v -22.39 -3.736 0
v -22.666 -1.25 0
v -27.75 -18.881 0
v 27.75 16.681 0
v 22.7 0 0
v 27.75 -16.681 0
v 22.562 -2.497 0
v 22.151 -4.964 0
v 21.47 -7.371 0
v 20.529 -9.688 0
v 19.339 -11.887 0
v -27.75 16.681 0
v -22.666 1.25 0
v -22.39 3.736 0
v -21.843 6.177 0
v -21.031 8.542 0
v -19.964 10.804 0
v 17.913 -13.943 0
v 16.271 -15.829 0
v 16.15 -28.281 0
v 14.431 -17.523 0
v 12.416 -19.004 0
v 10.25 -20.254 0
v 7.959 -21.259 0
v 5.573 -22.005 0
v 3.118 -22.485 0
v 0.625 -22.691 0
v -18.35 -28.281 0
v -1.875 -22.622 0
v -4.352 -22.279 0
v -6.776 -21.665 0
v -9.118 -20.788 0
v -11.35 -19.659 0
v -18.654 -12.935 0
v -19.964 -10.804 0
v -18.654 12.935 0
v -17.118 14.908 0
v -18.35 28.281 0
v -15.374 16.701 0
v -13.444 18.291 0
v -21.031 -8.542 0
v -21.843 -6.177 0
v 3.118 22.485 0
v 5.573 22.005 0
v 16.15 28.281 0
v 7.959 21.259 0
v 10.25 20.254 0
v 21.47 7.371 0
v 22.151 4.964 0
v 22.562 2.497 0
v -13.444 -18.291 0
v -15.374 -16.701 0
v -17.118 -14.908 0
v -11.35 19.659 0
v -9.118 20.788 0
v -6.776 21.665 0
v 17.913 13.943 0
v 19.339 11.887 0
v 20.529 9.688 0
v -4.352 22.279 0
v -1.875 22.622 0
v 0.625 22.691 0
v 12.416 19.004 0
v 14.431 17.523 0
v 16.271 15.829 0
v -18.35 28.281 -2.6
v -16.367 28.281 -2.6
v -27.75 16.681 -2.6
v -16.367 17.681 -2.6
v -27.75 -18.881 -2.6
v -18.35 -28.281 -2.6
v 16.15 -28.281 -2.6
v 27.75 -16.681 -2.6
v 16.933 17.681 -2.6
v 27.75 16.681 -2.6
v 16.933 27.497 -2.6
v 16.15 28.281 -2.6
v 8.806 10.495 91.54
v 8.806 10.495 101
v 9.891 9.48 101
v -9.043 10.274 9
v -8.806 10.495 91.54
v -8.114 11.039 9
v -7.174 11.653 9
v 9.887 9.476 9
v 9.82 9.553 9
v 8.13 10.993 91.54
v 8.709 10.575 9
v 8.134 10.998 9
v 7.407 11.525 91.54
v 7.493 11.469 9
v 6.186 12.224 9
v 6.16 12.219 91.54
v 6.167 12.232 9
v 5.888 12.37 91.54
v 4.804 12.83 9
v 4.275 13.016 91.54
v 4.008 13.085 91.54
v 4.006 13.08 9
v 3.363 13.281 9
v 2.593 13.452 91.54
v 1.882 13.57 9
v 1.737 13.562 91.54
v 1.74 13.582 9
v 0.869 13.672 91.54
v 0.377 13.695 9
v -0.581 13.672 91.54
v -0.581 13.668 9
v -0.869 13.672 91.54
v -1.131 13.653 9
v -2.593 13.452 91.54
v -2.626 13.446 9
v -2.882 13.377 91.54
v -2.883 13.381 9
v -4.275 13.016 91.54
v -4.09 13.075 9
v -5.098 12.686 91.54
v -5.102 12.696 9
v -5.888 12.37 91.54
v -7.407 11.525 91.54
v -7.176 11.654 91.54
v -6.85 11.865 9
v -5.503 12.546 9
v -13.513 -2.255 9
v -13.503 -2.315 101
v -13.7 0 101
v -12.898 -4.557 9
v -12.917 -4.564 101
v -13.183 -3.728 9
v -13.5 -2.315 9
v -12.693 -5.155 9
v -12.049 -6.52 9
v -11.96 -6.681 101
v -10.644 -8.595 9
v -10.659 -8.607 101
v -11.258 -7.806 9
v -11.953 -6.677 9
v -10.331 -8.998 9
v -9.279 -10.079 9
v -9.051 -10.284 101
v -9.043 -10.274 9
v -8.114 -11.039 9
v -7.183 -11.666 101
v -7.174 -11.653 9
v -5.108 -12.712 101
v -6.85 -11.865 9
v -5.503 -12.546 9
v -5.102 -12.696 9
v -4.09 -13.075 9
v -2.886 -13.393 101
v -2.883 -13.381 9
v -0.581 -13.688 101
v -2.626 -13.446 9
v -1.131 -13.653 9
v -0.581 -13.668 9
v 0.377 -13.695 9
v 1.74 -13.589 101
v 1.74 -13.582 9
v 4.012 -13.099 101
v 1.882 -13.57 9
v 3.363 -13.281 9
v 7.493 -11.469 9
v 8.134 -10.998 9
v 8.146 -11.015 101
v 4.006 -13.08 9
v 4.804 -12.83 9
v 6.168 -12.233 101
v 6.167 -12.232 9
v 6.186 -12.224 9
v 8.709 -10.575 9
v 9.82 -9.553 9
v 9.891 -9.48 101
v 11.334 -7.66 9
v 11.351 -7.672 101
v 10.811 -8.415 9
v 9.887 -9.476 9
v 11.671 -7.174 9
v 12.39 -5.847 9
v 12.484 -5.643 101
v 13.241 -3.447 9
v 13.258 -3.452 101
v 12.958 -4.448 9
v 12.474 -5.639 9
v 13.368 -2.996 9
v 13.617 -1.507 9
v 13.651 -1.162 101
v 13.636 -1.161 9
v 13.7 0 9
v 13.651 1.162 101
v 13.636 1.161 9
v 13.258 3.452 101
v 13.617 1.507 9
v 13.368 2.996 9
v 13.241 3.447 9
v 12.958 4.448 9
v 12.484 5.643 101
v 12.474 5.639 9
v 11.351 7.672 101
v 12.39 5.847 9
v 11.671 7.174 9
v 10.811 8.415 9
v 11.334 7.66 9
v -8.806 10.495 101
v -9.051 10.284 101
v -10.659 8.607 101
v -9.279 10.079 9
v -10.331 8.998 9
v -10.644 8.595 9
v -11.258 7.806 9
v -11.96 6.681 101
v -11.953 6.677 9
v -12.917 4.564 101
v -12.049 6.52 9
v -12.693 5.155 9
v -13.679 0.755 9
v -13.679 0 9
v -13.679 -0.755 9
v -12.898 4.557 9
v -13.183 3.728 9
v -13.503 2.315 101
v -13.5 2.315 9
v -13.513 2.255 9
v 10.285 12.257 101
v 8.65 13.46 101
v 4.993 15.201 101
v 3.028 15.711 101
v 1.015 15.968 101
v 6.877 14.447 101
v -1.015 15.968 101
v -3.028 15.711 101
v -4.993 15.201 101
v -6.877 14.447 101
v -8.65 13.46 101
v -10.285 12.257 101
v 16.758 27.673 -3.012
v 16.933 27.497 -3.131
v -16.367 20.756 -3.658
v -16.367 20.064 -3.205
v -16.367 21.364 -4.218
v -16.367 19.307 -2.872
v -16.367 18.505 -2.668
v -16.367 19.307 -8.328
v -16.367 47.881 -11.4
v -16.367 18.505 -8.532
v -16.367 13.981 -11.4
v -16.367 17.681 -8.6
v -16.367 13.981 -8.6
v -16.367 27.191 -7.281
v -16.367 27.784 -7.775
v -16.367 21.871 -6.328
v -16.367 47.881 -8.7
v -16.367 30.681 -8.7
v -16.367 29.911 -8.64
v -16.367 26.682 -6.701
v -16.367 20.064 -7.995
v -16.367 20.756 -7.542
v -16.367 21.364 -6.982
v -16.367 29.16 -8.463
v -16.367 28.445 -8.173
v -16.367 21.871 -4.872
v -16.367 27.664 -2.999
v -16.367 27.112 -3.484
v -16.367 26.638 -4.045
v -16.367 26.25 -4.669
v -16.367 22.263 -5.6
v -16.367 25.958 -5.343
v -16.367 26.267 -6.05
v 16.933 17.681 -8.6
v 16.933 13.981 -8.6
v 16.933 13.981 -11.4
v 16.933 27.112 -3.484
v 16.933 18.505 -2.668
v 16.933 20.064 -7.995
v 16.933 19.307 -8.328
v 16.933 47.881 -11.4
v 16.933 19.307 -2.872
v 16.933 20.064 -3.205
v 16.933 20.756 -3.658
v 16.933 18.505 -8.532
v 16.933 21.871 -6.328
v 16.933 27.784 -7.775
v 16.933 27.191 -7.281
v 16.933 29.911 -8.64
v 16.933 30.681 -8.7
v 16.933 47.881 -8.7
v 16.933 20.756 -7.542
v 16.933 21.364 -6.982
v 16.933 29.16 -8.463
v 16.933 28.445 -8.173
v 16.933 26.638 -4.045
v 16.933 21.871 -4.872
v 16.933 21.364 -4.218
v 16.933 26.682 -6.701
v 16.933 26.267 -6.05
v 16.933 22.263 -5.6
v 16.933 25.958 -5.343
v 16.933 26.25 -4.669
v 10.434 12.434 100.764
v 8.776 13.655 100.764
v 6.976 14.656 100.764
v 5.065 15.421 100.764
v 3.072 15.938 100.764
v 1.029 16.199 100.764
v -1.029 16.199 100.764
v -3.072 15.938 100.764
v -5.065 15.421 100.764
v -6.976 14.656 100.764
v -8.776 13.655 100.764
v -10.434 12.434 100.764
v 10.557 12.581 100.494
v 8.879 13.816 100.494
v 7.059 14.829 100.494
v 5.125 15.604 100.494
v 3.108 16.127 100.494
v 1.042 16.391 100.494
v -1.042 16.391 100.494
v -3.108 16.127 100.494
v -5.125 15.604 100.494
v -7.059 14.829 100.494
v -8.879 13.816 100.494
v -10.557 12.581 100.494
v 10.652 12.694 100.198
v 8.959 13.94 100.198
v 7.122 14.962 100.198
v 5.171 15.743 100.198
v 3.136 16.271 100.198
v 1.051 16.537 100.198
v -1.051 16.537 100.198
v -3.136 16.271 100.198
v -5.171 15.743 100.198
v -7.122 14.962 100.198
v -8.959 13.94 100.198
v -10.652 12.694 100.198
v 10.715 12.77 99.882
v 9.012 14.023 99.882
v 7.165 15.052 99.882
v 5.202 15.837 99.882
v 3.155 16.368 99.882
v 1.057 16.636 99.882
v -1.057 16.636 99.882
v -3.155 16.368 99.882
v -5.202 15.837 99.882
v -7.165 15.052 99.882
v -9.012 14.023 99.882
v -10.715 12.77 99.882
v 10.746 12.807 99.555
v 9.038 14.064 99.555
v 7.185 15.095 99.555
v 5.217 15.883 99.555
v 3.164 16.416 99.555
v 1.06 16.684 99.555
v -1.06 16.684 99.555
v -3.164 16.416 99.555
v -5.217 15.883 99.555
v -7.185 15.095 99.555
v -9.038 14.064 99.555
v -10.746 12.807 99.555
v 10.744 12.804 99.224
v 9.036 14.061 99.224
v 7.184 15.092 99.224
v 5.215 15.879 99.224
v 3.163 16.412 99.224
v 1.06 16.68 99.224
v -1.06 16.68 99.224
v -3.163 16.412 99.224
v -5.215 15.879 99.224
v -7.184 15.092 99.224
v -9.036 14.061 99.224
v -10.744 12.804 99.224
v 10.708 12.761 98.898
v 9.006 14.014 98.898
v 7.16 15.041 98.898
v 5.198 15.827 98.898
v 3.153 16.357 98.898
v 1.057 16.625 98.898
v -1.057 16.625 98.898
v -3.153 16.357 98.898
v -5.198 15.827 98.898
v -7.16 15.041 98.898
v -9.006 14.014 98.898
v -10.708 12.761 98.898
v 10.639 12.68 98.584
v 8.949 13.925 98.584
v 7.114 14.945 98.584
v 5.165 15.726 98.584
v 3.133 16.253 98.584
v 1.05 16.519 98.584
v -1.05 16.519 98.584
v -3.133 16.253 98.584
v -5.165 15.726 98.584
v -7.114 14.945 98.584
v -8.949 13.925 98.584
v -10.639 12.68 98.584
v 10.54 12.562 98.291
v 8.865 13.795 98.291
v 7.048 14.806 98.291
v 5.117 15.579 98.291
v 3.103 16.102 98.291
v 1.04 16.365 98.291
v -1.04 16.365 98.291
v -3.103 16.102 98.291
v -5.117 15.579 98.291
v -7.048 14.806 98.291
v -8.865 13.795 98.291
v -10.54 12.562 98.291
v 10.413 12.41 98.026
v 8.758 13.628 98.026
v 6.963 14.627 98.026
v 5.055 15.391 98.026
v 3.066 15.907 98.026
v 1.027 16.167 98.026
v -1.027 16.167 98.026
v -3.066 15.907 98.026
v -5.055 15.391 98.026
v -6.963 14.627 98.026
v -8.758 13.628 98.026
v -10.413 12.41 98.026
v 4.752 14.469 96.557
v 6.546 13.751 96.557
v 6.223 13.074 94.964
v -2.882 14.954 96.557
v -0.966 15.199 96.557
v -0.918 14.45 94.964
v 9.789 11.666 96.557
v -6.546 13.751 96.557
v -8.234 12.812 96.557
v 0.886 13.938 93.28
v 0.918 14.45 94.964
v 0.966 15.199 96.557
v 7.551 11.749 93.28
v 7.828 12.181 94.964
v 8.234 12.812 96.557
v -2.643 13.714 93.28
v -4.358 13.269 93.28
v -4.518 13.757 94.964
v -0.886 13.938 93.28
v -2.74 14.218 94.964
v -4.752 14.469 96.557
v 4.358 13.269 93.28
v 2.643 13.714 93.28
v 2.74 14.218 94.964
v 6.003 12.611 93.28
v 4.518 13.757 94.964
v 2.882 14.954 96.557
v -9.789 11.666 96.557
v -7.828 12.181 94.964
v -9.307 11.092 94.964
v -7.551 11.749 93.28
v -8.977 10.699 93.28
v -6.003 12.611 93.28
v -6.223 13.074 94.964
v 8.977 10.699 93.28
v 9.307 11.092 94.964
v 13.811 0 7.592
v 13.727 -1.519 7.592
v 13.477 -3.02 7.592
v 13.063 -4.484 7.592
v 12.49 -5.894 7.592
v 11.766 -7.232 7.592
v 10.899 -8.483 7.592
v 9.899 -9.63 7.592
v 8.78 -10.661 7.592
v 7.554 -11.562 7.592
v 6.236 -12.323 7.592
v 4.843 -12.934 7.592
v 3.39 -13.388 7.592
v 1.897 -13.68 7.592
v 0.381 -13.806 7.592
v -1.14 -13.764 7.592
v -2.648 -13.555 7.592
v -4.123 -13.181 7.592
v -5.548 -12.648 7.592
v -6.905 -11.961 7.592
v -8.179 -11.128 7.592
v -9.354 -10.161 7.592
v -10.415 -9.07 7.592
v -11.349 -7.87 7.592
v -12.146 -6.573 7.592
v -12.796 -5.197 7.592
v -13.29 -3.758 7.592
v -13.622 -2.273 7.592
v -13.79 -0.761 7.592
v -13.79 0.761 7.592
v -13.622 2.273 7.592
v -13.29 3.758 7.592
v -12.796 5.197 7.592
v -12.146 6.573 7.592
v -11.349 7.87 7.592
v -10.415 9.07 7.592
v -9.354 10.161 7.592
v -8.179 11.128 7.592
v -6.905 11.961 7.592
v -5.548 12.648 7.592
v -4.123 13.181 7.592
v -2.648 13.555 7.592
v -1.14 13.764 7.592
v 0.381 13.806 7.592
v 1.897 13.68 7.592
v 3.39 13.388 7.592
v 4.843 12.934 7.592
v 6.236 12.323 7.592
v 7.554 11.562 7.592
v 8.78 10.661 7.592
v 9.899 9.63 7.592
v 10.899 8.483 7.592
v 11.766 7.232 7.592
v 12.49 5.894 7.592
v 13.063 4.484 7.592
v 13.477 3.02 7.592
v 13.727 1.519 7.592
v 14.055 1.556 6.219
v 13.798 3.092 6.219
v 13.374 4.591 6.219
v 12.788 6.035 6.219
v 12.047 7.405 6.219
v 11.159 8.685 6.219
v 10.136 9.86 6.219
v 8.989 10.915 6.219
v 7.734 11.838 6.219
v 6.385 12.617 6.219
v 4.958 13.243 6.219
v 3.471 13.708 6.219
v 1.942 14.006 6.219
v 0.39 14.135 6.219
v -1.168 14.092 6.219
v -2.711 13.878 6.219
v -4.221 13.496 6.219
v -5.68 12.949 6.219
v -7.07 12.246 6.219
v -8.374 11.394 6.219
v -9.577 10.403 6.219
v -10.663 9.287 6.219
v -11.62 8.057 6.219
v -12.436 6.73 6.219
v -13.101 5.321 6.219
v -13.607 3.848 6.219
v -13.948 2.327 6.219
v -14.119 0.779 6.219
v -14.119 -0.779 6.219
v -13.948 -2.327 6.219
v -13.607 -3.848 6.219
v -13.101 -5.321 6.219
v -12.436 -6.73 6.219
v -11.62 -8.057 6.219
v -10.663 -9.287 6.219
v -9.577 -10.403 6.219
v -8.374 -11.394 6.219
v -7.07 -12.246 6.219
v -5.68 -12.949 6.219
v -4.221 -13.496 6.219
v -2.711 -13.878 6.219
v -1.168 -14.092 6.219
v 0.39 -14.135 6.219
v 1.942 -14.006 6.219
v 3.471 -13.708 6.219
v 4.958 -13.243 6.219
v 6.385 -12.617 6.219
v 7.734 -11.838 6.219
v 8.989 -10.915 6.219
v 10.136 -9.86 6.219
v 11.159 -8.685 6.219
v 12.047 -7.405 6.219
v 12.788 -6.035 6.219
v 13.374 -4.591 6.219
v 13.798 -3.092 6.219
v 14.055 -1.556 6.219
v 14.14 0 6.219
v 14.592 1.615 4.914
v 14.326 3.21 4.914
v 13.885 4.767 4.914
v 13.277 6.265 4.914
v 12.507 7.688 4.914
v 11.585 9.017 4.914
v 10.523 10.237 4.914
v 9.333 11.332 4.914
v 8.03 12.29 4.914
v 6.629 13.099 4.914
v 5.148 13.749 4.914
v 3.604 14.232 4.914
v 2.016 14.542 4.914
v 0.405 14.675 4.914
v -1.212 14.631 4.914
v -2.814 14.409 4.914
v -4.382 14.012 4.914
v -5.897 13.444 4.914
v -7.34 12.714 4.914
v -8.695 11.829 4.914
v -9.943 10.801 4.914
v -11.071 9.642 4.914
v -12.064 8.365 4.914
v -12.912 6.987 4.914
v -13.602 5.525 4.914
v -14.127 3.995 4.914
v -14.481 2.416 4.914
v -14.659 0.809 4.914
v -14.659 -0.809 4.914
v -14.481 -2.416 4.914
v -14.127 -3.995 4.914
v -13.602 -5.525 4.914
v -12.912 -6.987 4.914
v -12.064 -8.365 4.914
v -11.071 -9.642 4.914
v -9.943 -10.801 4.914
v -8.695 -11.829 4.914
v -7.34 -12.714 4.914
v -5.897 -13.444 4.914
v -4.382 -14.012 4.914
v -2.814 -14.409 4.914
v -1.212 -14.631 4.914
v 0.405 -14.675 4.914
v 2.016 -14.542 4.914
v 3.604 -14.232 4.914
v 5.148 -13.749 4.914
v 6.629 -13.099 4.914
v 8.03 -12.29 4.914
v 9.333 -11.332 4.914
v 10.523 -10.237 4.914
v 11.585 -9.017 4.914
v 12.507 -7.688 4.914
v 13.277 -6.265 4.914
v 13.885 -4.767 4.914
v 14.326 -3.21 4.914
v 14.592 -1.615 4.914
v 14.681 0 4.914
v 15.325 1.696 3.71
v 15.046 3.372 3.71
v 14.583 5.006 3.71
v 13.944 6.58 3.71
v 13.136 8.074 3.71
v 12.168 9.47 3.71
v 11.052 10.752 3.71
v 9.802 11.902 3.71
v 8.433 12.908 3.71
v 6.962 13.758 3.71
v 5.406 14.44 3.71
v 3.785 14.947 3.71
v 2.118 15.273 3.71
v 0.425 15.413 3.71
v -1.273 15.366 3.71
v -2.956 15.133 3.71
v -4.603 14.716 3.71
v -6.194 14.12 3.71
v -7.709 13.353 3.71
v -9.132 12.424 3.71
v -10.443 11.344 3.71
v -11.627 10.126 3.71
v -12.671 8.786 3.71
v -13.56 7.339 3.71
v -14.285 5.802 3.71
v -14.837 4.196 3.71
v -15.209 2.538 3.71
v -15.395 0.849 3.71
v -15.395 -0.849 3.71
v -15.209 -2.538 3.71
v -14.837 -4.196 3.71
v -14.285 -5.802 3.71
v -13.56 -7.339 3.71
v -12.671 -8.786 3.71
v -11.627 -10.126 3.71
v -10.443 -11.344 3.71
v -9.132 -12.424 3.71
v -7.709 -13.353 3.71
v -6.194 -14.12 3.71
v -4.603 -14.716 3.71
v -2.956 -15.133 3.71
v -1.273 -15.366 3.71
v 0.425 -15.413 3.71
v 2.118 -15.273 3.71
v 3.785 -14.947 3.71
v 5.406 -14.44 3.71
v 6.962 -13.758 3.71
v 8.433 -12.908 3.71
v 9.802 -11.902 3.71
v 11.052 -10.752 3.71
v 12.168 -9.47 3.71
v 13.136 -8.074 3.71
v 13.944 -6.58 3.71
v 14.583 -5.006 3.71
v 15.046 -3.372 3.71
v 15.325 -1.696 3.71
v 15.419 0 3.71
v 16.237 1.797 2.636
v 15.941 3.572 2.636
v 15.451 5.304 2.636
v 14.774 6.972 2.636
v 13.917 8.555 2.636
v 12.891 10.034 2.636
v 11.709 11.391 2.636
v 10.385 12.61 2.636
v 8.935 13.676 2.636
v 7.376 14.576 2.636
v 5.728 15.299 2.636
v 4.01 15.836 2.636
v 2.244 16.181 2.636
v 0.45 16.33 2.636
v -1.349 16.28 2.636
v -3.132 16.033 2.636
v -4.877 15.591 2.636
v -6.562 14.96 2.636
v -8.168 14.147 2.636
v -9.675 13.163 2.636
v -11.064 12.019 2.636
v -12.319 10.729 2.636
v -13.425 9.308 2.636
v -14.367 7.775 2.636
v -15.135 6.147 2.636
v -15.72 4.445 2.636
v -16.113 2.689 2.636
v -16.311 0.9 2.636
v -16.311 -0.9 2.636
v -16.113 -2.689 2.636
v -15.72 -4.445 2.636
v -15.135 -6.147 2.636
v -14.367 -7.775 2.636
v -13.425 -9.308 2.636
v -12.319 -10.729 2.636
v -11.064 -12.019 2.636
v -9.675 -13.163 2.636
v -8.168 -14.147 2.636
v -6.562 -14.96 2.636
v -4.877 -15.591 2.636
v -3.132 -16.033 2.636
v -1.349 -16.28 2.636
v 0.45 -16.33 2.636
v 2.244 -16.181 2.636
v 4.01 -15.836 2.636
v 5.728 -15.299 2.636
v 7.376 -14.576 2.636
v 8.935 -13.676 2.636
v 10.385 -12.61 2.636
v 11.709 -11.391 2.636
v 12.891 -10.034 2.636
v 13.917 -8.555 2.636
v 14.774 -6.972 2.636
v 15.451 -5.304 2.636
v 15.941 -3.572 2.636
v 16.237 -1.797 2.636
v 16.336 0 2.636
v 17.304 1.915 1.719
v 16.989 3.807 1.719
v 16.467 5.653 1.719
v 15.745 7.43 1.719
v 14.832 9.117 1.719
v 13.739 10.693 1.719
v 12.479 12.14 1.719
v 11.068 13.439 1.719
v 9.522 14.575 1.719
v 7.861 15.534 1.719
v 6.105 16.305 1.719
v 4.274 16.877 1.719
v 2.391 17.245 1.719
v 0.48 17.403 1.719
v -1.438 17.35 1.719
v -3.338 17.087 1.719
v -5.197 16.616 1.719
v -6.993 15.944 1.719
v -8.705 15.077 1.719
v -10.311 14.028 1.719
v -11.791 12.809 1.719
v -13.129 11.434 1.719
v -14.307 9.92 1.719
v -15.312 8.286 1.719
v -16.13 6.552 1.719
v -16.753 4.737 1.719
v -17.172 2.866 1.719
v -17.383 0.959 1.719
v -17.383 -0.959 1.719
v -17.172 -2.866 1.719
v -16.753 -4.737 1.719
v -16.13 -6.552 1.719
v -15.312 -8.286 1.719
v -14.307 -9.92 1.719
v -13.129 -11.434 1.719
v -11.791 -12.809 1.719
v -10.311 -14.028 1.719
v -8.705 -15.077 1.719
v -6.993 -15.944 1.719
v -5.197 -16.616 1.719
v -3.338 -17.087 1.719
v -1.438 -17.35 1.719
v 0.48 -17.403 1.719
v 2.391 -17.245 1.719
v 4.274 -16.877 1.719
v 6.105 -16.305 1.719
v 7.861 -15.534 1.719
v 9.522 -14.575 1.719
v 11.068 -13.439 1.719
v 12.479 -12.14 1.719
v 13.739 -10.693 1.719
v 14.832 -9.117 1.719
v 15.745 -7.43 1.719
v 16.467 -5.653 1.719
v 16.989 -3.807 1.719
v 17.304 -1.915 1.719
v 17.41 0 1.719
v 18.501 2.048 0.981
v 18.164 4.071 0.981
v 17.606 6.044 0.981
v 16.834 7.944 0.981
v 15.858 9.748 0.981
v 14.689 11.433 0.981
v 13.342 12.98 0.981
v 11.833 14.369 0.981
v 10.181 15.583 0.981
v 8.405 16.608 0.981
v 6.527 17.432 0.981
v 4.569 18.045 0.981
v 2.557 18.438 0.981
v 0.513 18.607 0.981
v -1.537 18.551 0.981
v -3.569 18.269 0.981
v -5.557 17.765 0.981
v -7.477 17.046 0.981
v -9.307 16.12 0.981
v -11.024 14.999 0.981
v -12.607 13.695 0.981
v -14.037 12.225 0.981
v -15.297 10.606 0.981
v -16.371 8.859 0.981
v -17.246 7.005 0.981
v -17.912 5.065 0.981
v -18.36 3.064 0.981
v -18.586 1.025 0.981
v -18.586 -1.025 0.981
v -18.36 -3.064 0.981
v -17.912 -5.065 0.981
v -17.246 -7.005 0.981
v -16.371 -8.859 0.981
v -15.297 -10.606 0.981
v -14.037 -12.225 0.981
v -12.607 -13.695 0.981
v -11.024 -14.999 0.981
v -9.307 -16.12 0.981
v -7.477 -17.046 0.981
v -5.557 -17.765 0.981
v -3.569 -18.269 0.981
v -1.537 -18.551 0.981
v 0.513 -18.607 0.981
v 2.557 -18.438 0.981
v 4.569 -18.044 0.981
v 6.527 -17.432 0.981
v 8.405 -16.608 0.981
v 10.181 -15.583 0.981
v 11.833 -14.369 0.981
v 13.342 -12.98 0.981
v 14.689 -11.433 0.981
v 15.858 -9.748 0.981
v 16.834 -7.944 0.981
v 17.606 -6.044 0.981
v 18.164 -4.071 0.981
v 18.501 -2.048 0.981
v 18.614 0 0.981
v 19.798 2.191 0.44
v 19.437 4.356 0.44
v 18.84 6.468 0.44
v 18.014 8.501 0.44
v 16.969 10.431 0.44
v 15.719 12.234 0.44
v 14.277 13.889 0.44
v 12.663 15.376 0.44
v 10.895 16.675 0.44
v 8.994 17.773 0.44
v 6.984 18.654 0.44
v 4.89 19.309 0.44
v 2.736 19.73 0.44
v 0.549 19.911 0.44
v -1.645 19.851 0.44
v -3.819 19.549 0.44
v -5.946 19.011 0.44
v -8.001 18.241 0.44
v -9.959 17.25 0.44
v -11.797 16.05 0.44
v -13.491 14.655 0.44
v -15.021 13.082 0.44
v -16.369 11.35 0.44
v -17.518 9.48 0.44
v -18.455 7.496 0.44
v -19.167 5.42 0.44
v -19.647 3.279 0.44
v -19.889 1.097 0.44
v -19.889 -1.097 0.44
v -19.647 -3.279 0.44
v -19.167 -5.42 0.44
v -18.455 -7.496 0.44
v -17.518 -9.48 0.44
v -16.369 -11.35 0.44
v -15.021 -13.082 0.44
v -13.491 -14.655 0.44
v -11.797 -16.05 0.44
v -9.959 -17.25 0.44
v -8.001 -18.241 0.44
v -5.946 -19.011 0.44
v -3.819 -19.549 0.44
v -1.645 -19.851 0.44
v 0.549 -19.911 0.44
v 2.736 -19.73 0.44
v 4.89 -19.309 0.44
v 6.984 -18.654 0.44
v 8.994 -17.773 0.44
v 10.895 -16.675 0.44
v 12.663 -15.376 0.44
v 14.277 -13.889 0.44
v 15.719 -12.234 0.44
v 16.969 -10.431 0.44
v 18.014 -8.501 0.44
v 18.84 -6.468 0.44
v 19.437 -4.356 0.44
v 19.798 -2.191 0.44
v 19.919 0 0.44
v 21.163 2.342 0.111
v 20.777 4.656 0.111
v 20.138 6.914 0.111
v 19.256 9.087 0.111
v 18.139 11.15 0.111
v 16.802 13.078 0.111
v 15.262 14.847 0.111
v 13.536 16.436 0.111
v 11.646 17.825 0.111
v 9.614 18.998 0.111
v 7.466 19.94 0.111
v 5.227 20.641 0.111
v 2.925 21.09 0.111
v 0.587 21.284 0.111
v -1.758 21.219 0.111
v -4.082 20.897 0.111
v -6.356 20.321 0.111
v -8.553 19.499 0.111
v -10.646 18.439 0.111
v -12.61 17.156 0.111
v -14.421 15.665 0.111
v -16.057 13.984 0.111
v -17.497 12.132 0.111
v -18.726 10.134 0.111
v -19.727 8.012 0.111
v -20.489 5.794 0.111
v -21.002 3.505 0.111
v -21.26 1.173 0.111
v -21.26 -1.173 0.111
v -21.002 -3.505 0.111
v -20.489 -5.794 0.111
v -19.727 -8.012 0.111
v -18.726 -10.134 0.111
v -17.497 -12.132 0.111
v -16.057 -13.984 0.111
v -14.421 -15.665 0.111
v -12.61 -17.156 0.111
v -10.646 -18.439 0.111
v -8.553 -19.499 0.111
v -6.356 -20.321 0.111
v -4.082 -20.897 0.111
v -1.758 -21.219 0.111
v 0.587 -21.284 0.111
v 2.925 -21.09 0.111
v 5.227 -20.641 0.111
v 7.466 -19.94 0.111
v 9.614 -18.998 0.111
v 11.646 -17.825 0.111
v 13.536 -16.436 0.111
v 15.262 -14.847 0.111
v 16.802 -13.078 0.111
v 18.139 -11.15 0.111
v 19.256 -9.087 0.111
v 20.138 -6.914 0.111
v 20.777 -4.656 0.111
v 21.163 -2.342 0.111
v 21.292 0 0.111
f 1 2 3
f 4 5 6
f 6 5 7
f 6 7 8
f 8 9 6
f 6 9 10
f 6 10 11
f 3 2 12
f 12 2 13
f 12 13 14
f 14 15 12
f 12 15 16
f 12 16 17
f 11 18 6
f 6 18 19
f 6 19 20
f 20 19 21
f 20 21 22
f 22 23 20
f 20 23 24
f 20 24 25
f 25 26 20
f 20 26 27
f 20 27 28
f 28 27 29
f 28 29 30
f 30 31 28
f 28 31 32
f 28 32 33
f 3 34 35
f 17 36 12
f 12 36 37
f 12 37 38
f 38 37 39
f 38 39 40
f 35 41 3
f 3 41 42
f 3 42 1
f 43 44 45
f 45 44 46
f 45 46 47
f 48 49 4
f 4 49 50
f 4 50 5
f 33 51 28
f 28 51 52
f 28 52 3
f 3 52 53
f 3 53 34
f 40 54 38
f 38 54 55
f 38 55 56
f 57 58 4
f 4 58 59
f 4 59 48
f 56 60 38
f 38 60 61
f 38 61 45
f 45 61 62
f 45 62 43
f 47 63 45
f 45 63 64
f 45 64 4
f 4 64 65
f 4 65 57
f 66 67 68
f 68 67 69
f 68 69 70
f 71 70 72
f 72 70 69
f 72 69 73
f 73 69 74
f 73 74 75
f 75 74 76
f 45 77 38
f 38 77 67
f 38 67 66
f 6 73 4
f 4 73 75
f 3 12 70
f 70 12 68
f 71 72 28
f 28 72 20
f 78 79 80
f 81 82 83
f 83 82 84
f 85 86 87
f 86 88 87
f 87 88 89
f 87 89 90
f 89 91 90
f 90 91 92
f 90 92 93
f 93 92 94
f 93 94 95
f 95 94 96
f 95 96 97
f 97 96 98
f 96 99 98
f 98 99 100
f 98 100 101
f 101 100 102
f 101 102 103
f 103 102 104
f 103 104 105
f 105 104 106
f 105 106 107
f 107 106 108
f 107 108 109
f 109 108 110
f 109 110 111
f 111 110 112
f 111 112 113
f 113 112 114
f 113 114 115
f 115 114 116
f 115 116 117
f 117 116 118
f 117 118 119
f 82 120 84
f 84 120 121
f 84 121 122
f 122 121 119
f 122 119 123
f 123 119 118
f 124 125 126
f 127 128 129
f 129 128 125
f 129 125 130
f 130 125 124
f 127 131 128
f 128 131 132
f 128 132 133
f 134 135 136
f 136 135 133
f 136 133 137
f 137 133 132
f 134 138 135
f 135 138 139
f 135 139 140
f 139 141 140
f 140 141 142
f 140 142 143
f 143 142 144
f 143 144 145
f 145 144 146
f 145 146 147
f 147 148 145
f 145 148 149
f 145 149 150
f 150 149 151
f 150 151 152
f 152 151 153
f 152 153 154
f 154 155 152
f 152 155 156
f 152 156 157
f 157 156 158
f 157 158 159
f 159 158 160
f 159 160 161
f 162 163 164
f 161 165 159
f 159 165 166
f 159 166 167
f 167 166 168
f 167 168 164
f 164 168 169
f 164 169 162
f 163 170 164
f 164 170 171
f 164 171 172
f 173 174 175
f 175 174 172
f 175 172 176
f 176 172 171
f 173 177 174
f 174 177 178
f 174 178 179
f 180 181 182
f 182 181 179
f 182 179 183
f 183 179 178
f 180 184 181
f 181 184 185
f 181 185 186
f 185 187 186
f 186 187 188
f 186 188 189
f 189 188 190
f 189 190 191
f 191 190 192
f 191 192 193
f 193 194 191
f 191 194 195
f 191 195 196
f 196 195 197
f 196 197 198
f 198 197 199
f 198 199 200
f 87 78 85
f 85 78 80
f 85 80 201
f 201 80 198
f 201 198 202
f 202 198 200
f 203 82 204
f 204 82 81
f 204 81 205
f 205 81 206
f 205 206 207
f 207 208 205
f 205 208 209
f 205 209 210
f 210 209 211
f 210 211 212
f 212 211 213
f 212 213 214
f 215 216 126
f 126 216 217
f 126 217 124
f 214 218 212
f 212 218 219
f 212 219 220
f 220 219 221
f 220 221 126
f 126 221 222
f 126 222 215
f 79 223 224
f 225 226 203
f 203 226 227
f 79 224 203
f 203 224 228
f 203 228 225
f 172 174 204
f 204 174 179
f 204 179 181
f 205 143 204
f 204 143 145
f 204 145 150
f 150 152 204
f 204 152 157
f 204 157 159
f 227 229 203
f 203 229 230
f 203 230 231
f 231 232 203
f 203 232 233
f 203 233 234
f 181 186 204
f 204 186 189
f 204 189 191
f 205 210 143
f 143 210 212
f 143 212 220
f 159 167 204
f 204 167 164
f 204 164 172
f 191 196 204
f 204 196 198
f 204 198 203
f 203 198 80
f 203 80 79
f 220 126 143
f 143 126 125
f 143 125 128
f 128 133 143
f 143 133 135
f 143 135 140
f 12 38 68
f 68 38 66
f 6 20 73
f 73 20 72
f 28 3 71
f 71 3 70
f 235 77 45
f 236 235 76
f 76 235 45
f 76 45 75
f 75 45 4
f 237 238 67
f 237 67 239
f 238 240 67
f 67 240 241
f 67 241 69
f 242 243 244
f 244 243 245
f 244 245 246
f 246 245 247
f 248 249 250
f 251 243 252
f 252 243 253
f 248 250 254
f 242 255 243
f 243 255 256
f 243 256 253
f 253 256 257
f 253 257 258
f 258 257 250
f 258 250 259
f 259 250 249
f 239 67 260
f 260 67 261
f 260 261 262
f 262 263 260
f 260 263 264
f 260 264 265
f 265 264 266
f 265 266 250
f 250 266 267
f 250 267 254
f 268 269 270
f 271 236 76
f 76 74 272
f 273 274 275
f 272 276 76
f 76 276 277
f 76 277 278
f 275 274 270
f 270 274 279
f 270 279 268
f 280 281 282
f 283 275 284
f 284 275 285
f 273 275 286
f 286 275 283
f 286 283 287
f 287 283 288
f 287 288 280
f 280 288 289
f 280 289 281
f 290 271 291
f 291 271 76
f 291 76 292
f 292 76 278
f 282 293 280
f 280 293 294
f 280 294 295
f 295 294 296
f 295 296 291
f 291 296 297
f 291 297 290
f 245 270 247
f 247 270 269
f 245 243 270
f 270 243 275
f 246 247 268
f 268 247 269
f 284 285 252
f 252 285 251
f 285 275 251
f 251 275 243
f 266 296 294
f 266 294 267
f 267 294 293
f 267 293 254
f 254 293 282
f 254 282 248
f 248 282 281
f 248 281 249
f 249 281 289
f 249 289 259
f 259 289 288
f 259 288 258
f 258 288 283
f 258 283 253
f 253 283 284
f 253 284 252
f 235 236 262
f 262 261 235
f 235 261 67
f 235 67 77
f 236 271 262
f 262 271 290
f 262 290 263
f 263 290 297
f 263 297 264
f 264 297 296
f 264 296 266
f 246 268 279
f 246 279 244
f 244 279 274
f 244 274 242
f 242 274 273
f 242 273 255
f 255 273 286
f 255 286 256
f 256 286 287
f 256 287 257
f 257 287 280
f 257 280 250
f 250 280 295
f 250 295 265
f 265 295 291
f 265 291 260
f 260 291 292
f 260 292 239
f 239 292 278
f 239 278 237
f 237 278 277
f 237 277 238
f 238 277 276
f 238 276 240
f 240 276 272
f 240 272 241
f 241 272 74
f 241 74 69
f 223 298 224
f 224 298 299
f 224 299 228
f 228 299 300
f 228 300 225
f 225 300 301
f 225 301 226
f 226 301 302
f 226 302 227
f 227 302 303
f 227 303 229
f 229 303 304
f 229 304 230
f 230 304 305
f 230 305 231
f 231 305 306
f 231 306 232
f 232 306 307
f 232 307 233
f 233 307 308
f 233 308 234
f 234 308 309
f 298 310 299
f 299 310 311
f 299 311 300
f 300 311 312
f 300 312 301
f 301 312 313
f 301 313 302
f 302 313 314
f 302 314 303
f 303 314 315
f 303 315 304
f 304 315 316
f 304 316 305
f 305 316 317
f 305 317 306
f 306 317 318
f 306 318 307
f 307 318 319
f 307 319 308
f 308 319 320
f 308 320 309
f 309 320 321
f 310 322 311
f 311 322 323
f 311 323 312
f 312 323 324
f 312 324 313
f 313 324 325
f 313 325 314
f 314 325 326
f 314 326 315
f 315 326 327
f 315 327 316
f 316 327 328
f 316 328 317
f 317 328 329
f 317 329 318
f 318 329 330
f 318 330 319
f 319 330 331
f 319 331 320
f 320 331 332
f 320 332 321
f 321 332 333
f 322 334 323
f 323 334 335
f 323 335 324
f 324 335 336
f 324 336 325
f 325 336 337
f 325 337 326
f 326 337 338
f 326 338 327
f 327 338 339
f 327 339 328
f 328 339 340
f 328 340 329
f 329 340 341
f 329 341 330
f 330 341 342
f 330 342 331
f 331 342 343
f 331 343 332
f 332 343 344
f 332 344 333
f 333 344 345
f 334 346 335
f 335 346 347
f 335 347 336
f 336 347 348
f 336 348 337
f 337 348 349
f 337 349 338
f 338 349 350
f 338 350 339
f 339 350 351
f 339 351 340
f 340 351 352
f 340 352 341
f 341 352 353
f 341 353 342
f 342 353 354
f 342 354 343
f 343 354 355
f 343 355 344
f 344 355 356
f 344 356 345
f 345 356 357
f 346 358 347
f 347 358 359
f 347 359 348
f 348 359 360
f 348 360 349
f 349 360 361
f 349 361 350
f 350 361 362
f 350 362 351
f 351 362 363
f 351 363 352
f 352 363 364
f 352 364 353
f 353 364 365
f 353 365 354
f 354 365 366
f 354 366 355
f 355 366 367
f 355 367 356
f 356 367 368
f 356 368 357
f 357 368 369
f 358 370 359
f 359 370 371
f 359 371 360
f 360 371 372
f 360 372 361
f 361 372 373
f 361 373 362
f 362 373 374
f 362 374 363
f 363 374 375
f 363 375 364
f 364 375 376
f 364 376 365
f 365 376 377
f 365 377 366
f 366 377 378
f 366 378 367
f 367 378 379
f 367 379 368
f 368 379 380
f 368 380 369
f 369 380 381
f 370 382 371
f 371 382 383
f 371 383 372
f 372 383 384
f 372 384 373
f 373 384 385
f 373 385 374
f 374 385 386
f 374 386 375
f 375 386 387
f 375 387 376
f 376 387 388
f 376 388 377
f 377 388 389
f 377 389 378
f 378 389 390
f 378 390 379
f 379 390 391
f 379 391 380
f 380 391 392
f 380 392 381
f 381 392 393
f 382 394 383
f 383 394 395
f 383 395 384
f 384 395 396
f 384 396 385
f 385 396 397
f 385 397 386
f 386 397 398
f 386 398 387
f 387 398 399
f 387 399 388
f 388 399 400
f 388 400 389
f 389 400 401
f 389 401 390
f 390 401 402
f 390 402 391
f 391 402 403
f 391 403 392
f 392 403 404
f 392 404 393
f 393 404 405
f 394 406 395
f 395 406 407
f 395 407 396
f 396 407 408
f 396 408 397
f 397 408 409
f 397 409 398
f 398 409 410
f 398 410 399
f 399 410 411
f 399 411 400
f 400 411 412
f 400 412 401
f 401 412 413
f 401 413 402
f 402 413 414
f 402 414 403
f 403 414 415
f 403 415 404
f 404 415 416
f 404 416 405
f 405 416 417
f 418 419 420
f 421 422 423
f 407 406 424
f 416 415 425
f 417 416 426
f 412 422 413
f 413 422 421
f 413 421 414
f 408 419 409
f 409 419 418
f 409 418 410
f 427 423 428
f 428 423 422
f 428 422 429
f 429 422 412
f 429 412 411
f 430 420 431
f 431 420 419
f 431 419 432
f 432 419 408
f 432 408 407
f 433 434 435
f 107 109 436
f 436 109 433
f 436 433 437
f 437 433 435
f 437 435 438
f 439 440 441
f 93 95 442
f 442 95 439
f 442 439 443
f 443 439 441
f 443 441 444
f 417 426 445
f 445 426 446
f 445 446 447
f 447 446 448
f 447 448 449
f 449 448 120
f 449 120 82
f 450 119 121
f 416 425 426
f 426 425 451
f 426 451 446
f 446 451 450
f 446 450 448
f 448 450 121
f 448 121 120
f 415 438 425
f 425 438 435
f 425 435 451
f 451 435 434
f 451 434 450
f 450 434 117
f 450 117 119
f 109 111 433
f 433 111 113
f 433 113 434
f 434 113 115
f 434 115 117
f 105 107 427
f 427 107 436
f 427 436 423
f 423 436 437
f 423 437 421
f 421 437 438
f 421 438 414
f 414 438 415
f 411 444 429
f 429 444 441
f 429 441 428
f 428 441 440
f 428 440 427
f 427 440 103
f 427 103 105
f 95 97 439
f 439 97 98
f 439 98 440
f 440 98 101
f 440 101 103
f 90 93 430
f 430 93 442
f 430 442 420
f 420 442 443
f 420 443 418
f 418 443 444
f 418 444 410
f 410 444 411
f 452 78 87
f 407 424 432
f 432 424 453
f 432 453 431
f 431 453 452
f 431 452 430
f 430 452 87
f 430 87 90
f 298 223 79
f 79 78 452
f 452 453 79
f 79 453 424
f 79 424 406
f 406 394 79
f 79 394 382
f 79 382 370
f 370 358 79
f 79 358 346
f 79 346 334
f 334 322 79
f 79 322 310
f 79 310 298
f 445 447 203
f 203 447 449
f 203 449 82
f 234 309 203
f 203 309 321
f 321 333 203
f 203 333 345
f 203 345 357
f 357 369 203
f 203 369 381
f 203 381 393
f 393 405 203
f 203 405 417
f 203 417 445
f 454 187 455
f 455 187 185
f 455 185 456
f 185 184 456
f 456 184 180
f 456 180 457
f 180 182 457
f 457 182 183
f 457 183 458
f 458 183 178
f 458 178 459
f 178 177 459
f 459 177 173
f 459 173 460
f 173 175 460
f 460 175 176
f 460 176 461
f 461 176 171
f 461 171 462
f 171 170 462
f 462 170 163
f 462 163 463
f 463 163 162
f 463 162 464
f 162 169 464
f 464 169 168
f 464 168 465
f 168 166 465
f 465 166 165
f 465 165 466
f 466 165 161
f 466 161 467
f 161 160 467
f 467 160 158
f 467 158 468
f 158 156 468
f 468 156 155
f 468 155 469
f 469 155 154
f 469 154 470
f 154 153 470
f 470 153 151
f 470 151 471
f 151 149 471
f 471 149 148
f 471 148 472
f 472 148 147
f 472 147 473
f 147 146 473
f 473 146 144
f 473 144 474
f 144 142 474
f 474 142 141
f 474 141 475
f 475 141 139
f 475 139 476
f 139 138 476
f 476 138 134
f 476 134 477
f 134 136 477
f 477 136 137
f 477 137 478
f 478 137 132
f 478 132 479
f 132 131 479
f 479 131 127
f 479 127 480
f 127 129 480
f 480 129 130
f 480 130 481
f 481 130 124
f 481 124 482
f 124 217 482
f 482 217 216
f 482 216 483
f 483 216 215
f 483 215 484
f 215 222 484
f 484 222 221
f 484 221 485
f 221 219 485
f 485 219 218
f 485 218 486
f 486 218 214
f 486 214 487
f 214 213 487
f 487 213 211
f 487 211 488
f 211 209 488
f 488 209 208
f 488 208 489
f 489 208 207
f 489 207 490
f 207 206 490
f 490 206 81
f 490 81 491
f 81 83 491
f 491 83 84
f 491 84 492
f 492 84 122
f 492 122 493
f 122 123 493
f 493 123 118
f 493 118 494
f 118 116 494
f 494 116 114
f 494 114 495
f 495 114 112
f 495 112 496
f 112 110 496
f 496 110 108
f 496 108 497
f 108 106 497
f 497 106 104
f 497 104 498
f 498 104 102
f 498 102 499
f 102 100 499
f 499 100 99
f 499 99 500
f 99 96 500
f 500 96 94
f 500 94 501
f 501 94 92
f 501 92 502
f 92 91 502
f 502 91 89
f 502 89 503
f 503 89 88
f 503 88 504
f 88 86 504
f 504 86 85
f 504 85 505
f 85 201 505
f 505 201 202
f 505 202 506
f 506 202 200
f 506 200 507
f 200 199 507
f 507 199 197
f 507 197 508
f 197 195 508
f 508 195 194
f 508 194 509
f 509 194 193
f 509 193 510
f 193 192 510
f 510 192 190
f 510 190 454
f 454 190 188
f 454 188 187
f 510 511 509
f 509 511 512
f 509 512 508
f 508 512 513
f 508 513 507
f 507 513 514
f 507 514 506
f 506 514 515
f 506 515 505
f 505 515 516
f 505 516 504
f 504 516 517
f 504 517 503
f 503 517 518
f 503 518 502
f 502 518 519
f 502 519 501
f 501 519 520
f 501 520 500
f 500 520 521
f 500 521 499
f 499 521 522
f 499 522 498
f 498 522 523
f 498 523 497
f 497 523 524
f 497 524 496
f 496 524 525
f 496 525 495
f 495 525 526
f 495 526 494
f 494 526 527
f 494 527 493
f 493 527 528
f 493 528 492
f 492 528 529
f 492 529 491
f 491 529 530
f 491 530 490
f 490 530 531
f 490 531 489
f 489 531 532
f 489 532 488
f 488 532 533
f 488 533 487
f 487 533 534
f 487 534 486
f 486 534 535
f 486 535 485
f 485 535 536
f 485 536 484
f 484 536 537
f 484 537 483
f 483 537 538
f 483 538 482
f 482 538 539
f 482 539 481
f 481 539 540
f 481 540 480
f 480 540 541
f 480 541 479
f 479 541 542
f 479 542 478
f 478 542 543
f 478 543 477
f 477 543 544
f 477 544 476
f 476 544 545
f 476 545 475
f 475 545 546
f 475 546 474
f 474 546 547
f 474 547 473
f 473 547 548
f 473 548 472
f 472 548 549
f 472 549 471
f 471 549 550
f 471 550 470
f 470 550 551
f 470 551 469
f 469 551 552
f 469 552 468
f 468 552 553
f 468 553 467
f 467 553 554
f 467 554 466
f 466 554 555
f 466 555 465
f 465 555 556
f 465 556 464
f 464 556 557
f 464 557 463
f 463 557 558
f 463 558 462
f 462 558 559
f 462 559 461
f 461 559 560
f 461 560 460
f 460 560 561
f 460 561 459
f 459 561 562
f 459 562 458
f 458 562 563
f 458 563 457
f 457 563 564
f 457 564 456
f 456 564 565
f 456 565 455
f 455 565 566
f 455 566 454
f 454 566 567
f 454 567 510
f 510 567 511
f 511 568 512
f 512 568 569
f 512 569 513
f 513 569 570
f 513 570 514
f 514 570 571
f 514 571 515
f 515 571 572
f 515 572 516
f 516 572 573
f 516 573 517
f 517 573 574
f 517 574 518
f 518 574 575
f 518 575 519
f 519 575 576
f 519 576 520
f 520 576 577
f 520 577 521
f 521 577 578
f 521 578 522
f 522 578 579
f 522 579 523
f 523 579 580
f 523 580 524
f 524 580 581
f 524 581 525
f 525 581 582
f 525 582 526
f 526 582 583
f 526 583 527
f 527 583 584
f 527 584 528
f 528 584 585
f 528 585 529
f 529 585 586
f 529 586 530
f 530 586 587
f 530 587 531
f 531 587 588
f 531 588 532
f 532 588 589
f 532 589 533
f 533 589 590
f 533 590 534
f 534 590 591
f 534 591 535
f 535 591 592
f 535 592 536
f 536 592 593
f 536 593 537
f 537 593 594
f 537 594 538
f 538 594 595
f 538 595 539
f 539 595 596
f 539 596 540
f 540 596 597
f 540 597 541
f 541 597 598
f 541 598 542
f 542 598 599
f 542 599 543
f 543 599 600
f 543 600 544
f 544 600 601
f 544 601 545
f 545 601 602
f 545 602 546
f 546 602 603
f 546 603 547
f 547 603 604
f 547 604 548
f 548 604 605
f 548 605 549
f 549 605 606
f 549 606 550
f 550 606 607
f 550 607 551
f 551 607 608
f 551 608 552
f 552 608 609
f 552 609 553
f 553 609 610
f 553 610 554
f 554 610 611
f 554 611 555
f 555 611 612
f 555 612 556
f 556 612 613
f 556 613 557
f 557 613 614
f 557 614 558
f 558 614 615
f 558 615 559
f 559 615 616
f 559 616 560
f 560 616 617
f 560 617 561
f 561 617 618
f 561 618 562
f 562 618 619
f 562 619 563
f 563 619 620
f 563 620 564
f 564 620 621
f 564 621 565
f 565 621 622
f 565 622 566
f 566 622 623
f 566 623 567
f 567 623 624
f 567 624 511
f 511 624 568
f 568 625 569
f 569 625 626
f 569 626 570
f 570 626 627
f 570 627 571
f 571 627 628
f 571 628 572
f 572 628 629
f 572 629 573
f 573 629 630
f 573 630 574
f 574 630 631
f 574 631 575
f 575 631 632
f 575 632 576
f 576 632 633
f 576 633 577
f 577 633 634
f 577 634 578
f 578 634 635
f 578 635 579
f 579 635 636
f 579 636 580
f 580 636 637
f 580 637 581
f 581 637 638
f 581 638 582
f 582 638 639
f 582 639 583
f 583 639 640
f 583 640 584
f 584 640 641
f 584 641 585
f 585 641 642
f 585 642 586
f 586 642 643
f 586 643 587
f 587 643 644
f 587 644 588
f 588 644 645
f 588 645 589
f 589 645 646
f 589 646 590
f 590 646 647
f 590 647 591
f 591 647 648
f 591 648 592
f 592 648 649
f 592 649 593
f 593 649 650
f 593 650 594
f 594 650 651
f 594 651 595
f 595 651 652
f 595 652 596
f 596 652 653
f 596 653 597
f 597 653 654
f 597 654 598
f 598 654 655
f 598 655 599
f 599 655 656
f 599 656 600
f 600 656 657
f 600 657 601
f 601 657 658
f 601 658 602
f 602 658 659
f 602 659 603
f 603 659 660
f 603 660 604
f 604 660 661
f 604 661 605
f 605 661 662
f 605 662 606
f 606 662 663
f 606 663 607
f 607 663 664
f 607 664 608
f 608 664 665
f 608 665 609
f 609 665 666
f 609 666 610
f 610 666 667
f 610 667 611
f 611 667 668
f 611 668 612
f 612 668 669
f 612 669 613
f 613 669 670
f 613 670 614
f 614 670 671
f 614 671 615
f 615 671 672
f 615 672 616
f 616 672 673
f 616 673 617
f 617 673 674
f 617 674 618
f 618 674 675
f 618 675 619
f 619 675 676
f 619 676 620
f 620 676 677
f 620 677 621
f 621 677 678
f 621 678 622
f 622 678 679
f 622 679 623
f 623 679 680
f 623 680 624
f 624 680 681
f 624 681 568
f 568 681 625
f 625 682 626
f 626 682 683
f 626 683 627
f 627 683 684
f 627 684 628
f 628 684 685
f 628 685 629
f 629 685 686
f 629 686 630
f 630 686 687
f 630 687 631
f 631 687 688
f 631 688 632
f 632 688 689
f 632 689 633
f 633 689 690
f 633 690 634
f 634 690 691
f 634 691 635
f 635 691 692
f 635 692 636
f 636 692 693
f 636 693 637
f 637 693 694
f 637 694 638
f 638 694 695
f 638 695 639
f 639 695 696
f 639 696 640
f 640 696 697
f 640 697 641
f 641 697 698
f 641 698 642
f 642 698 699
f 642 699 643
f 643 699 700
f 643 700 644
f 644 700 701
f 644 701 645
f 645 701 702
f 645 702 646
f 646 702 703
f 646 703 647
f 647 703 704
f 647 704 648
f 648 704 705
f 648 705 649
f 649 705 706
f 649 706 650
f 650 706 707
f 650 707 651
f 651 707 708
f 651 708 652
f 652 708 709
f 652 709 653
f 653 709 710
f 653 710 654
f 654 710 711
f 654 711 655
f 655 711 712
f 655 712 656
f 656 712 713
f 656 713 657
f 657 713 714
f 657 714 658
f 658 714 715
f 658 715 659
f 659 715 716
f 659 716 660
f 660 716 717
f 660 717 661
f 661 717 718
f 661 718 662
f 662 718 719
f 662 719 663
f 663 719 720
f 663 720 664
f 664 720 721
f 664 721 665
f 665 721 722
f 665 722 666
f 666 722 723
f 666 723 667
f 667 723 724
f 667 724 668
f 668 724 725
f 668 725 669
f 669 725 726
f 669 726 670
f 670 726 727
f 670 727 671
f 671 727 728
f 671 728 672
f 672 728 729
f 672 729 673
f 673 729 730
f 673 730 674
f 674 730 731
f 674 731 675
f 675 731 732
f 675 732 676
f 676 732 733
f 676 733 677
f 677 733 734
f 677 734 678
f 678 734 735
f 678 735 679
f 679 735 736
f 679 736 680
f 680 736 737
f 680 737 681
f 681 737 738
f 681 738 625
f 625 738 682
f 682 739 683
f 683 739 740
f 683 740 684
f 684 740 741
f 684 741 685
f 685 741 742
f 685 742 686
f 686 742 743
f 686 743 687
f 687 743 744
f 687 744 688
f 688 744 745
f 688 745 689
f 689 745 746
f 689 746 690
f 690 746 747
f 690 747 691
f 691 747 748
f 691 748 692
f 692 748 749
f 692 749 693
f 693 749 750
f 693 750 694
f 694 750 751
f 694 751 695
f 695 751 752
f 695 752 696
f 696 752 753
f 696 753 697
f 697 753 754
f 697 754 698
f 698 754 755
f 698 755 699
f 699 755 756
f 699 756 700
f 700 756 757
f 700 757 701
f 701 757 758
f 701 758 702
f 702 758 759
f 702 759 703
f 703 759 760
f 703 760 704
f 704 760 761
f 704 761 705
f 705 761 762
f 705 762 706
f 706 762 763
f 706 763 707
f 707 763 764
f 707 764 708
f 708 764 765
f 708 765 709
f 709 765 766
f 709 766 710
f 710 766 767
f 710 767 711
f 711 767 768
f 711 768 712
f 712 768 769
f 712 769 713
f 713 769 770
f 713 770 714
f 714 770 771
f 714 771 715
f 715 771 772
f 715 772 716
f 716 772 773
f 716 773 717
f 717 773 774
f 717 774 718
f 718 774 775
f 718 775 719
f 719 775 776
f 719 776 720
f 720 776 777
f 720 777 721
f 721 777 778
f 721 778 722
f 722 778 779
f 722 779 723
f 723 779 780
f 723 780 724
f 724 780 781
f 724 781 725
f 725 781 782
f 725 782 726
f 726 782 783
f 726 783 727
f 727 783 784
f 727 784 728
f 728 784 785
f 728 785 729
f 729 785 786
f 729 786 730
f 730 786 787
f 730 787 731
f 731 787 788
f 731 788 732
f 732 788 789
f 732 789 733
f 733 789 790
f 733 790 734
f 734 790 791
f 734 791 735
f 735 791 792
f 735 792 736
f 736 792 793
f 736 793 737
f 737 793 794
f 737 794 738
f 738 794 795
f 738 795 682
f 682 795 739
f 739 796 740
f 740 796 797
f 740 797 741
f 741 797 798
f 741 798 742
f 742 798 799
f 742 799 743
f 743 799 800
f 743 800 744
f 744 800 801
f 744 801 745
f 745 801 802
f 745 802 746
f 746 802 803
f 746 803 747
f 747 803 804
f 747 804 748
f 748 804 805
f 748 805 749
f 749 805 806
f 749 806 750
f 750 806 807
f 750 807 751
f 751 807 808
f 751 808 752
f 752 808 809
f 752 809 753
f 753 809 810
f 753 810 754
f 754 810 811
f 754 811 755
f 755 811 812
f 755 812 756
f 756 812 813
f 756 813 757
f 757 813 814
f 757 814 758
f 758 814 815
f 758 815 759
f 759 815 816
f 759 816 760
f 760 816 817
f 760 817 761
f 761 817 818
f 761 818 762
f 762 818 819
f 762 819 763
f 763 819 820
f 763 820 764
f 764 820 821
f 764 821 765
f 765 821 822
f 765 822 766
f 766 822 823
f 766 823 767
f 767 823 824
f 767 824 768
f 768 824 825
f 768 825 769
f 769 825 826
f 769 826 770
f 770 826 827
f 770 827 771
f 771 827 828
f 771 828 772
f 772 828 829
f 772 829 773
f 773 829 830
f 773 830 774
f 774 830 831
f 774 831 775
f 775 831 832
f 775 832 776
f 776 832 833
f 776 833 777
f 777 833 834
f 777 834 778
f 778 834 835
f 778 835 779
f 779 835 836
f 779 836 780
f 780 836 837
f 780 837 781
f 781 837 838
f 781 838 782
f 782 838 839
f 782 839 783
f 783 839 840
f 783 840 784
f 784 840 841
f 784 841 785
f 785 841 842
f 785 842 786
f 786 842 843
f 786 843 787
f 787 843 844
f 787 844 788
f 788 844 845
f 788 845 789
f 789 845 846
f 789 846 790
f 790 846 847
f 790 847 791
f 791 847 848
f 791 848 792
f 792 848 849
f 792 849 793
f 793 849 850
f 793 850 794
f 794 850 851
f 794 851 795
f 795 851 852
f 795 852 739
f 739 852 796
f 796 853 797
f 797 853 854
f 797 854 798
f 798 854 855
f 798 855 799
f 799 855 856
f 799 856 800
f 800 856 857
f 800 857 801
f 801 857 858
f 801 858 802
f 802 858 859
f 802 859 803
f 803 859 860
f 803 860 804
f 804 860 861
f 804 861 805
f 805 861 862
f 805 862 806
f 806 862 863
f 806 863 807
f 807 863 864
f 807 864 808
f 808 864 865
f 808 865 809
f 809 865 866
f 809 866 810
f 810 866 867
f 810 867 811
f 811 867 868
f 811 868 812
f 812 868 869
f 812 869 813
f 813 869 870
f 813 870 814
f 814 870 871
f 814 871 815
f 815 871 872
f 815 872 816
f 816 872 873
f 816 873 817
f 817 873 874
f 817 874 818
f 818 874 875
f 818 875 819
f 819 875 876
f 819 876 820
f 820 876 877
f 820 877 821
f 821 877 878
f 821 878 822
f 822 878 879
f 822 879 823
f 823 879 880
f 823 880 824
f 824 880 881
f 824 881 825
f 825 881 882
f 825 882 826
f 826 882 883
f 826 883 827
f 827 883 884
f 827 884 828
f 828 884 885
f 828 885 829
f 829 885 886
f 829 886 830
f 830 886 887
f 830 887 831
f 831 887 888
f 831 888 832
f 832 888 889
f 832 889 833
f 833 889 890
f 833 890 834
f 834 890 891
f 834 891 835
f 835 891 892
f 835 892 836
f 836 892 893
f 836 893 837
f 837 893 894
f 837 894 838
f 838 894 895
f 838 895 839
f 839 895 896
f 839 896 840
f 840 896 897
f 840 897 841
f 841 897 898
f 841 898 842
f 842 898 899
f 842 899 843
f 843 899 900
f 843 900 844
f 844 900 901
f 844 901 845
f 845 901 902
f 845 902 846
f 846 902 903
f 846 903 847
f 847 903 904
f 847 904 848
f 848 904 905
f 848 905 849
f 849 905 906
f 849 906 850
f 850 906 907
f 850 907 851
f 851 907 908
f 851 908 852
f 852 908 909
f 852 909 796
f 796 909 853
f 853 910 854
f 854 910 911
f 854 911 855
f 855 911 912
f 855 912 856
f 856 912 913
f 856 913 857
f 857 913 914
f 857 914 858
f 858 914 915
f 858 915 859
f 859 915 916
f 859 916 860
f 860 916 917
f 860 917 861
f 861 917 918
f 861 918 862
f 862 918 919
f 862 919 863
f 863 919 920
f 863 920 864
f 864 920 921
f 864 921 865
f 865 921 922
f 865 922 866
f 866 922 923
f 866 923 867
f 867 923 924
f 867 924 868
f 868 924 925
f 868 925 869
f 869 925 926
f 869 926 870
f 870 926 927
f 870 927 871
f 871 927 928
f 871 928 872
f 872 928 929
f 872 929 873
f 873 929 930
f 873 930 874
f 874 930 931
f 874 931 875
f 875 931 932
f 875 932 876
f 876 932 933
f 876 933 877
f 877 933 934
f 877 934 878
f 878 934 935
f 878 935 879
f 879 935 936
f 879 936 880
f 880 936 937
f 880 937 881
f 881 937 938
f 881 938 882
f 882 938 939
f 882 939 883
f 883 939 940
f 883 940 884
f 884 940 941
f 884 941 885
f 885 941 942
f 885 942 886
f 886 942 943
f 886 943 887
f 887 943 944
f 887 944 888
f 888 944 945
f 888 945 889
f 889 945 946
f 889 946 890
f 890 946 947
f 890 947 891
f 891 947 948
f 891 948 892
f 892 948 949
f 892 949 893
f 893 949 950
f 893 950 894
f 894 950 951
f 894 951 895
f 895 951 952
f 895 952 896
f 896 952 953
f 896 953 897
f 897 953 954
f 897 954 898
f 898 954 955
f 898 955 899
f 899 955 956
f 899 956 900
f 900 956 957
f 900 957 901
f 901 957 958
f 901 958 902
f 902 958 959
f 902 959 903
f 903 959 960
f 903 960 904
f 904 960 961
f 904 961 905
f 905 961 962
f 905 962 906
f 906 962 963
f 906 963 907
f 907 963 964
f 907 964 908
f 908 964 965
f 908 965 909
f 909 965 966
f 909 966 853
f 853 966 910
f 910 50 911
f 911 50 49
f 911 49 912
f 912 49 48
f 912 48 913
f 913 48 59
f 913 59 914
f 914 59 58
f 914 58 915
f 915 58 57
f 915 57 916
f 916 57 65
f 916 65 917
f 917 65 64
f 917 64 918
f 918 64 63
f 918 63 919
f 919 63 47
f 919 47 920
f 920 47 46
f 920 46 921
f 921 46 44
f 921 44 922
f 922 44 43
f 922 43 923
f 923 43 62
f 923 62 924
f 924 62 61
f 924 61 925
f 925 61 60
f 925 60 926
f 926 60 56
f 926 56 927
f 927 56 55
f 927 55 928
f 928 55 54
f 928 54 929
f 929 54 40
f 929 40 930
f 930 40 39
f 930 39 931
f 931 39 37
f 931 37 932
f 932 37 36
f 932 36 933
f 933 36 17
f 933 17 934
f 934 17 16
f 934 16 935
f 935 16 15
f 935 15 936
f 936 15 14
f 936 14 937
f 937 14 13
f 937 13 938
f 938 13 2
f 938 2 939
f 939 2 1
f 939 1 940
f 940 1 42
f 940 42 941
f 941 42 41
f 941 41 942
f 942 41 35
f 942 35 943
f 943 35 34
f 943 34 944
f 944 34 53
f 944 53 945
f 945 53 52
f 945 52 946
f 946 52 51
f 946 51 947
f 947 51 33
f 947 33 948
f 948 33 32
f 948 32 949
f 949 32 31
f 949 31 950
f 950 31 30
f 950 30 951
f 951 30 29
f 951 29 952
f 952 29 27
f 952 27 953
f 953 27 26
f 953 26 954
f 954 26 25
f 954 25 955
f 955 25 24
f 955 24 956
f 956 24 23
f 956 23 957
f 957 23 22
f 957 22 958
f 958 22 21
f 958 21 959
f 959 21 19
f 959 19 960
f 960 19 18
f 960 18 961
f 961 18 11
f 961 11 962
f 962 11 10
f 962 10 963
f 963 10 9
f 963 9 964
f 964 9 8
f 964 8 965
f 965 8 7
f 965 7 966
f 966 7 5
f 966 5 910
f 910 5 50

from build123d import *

# Parameters (mm, degrees)
SKETCH1_R                = 13.7
BOSS_EXTRUDE1_DEPTH      = 101
SKETCH5_W                = 55.5
SKETCH5_H                = 56.561345004
BOSS_EXTRUDE2_DEPTH      = 2.6
CUT_EXTRUDE4_DEPTH       = 2.6
BOSS_EXTRUDE4_DEPTH      = 6
SKETCH8_W                = 33.3
SKETCH8_H                = 11.7
BOSS_EXTRUDE5_DEPTH      = 2.8
SKETCH9_W                = 33.3
SKETCH9_H                = 2.7
BOSS_EXTRUDE6_DEPTH      = 22.2
FILLET2_R                = 5
REVOLVE1_ANGLE           = 40
REVOLVE1_OTHER_WAY_ANGLE = 40
FILLET6_R                = 9


with BuildPart() as part:
    # Sketch1 → Boss-Extrude1 (new body)
    with BuildSketch(Plane.XY):
        with Locations(Location((0, 0, 0), (0, 0, 180))):
            Circle(SKETCH1_R)
    extrude(amount=BOSS_EXTRUDE1_DEPTH)

    # Sketch5 → Boss-Extrude2 (add)
    with BuildSketch(Plane(origin=(0, 0, 0), x_dir=(-1, 0, 0), z_dir=(0, 0, -1))):
        Rectangle(SKETCH5_W, SKETCH5_H)
    extrude(amount=BOSS_EXTRUDE2_DEPTH)

    # Sketch6 → Cut-Extrude4 (cut)
    with BuildSketch(Plane(origin=(0, 0, -2.6), x_dir=(-1, 0, 0), z_dir=(0, 0, -1))):
        Polygon((27.75, 28.280672502), (18.35, 28.280672502), (27.75, 16.680672502), align=None)
        Polygon((-16.15, -28.280672502), (-27.75, -16.680672502), (-27.75, -28.280672502), align=None)
        Polygon((27.75, -18.880672502), (18.35, -28.280672502), (27.75, -28.280672502), align=None)
        Polygon((-27.75, 16.680672502), (-27.75, 28.280672502), (-16.15, 28.280672502), align=None)
    extrude(amount=-CUT_EXTRUDE4_DEPTH, mode=Mode.SUBTRACT)

    # Sketch7 → Boss-Extrude4 (add)
    with BuildSketch(Plane(origin=(0, 0, -2.6), x_dir=(-1, 0, 0), z_dir=(0, 0, -1))):
        Polygon((1.1, 25.680672502), (16.366645995, 25.680672502), (16.366645995, 22.680672502), (-16.933354005, 22.680672502), (-16.933354005, 25.680672502), align=None)
    extrude(amount=BOSS_EXTRUDE4_DEPTH)

    # Sketch8 → Boss-Extrude5 (add)
    with BuildSketch(Plane(origin=(0, 0, -8.6), x_dir=(-1, 0, 0), z_dir=(0, 0, -1))):
        with Locations((-0.283354005, 19.830672502)):
            Rectangle(SKETCH8_W, SKETCH8_H)
    extrude(amount=BOSS_EXTRUDE5_DEPTH)

    # Sketch9 → Boss-Extrude6 (add)
    with BuildSketch(Plane(origin=(0, 25.680672502, 0), x_dir=(1, 0, 0), z_dir=(0, 1, 0))):
        with Locations((0.283354005, 10.05)):
            Rectangle(SKETCH9_W, SKETCH9_H)
    extrude(amount=BOSS_EXTRUDE6_DEPTH)

    # Fillet2
    # the kernel refuses this fillet: 5 mm, written as the material it adds along each edge
    with BuildSketch(Plane(origin=(-16.366645995, 25.680672502, -2.6), x_dir=(0, 1, 0), z_dir=(1, 0, 0))) as fillet2_piece_1_section:
        with BuildLine():
            CenterArc((5, -4.38634244), FILLET2_R, 118.685402014, 61.314597986)
            Line((0, -4.38634244), (-0.1, -4.38634244))
            Line((-0.1, -4.38634244), (-0.1, 0))
            Line((-0.1, 0), (0, 0.1))
            ThreePointArc((0, 0.1), (1.3, 0.1), (2.552, 0.087726849))
            Line((2.552, 0.087726849), (2.6, 0))
        make_face()
    fillet2_piece_1 = extrude(amount=33.3, mode=Mode.PRIVATE)
    fillet2_piece_1 = split(fillet2_piece_1, bisect_by=Plane(origin=(9.175527955, 35.255144547, -3.690317045), z_dir=(-0.7071067811865442, -0.7071067811865509, 0)), keep=Keep.TOP, mode=Mode.PRIVATE)
    add(fillet2_piece_1)
    with BuildSketch(Plane(origin=(-16.366645995, 22.680672502, -2.6), x_dir=(0, -1, 0), z_dir=(1, 0, 0))) as fillet2_piece_2:
        with BuildLine():
            CenterArc((FILLET2_R, FILLET2_R), FILLET2_R, 180, 90)
            Line((0, FILLET2_R), (-FILLET2_R * 0.02, FILLET2_R))
            Line((-FILLET2_R * 0.02, FILLET2_R), (-FILLET2_R * 0.02, -FILLET2_R * 0.02))
            Line((-FILLET2_R * 0.02, -FILLET2_R * 0.02), (FILLET2_R, -FILLET2_R * 0.02))
            Line((FILLET2_R, -FILLET2_R * 0.02), (FILLET2_R, 0))
        make_face()
    extrude(amount=33.3)
    with BuildSketch(Plane(origin=(-16.366645995, 22.680672502, -8.6), x_dir=(0, -1, 0), z_dir=(1, 0, 0)), Plane(origin=(16.933354005, 25.680672502, -8.7), x_dir=(0, 1, 0), z_dir=(-1, 0, 0))) as fillet2_piece_3:
        with BuildLine():
            CenterArc((FILLET2_R, -FILLET2_R), FILLET2_R, 90, 90)
            Line((0, -FILLET2_R), (-FILLET2_R * 0.02, -FILLET2_R))
            Line((-FILLET2_R * 0.02, -FILLET2_R), (-FILLET2_R * 0.02, FILLET2_R * 0.02))
            Line((-FILLET2_R * 0.02, FILLET2_R * 0.02), (FILLET2_R, FILLET2_R * 0.02))
            Line((FILLET2_R, FILLET2_R * 0.02), (FILLET2_R, 0))
        make_face()
    extrude(amount=33.3)

    # Sketch10 → Revolve1 (revolve)
    with BuildSketch(Plane.ZY):
        with BuildLine():
            Line((101, 13.7), (101, 16))
            ThreePointArc((101, 16), (99.554707727, 16.71784268), (98.02630764, 16.2))
            ThreePointArc((98.02630764, 16.2), (94.964280854, 14.479645567), (91.539696179, 13.7))
            Line((91.539696179, 13.7), (101, 13.7))
        make_face()
    revolve(axis=Axis((0, 0, 101.100764075), (0, 0, -1)), revolution_arc=REVOLVE1_ANGLE)

    # Sketch10 → Revolve1 other way (revolve)
    with BuildSketch(Plane.ZY):
        with BuildLine():
            Line((101, 13.7), (101, 16))
            ThreePointArc((101, 16), (99.554707727, 16.71784268), (98.02630764, 16.2))
            ThreePointArc((98.02630764, 16.2), (94.964280854, 14.479645567), (91.539696179, 13.7))
            Line((91.539696179, 13.7), (101, 13.7))
        make_face()
    revolve(axis=Axis((0, 0, 101.100764075), (0, 0, 1)), revolution_arc=REVOLVE1_OTHER_WAY_ANGLE)

    # Fillet6
    fillet6_edges = [part.edges().sort_by_distance(p)[0] for p in [
        (13.7, 0, 0),
    ]]
    fillet(fillet6_edges, radius=FILLET6_R)


solid = part.part
